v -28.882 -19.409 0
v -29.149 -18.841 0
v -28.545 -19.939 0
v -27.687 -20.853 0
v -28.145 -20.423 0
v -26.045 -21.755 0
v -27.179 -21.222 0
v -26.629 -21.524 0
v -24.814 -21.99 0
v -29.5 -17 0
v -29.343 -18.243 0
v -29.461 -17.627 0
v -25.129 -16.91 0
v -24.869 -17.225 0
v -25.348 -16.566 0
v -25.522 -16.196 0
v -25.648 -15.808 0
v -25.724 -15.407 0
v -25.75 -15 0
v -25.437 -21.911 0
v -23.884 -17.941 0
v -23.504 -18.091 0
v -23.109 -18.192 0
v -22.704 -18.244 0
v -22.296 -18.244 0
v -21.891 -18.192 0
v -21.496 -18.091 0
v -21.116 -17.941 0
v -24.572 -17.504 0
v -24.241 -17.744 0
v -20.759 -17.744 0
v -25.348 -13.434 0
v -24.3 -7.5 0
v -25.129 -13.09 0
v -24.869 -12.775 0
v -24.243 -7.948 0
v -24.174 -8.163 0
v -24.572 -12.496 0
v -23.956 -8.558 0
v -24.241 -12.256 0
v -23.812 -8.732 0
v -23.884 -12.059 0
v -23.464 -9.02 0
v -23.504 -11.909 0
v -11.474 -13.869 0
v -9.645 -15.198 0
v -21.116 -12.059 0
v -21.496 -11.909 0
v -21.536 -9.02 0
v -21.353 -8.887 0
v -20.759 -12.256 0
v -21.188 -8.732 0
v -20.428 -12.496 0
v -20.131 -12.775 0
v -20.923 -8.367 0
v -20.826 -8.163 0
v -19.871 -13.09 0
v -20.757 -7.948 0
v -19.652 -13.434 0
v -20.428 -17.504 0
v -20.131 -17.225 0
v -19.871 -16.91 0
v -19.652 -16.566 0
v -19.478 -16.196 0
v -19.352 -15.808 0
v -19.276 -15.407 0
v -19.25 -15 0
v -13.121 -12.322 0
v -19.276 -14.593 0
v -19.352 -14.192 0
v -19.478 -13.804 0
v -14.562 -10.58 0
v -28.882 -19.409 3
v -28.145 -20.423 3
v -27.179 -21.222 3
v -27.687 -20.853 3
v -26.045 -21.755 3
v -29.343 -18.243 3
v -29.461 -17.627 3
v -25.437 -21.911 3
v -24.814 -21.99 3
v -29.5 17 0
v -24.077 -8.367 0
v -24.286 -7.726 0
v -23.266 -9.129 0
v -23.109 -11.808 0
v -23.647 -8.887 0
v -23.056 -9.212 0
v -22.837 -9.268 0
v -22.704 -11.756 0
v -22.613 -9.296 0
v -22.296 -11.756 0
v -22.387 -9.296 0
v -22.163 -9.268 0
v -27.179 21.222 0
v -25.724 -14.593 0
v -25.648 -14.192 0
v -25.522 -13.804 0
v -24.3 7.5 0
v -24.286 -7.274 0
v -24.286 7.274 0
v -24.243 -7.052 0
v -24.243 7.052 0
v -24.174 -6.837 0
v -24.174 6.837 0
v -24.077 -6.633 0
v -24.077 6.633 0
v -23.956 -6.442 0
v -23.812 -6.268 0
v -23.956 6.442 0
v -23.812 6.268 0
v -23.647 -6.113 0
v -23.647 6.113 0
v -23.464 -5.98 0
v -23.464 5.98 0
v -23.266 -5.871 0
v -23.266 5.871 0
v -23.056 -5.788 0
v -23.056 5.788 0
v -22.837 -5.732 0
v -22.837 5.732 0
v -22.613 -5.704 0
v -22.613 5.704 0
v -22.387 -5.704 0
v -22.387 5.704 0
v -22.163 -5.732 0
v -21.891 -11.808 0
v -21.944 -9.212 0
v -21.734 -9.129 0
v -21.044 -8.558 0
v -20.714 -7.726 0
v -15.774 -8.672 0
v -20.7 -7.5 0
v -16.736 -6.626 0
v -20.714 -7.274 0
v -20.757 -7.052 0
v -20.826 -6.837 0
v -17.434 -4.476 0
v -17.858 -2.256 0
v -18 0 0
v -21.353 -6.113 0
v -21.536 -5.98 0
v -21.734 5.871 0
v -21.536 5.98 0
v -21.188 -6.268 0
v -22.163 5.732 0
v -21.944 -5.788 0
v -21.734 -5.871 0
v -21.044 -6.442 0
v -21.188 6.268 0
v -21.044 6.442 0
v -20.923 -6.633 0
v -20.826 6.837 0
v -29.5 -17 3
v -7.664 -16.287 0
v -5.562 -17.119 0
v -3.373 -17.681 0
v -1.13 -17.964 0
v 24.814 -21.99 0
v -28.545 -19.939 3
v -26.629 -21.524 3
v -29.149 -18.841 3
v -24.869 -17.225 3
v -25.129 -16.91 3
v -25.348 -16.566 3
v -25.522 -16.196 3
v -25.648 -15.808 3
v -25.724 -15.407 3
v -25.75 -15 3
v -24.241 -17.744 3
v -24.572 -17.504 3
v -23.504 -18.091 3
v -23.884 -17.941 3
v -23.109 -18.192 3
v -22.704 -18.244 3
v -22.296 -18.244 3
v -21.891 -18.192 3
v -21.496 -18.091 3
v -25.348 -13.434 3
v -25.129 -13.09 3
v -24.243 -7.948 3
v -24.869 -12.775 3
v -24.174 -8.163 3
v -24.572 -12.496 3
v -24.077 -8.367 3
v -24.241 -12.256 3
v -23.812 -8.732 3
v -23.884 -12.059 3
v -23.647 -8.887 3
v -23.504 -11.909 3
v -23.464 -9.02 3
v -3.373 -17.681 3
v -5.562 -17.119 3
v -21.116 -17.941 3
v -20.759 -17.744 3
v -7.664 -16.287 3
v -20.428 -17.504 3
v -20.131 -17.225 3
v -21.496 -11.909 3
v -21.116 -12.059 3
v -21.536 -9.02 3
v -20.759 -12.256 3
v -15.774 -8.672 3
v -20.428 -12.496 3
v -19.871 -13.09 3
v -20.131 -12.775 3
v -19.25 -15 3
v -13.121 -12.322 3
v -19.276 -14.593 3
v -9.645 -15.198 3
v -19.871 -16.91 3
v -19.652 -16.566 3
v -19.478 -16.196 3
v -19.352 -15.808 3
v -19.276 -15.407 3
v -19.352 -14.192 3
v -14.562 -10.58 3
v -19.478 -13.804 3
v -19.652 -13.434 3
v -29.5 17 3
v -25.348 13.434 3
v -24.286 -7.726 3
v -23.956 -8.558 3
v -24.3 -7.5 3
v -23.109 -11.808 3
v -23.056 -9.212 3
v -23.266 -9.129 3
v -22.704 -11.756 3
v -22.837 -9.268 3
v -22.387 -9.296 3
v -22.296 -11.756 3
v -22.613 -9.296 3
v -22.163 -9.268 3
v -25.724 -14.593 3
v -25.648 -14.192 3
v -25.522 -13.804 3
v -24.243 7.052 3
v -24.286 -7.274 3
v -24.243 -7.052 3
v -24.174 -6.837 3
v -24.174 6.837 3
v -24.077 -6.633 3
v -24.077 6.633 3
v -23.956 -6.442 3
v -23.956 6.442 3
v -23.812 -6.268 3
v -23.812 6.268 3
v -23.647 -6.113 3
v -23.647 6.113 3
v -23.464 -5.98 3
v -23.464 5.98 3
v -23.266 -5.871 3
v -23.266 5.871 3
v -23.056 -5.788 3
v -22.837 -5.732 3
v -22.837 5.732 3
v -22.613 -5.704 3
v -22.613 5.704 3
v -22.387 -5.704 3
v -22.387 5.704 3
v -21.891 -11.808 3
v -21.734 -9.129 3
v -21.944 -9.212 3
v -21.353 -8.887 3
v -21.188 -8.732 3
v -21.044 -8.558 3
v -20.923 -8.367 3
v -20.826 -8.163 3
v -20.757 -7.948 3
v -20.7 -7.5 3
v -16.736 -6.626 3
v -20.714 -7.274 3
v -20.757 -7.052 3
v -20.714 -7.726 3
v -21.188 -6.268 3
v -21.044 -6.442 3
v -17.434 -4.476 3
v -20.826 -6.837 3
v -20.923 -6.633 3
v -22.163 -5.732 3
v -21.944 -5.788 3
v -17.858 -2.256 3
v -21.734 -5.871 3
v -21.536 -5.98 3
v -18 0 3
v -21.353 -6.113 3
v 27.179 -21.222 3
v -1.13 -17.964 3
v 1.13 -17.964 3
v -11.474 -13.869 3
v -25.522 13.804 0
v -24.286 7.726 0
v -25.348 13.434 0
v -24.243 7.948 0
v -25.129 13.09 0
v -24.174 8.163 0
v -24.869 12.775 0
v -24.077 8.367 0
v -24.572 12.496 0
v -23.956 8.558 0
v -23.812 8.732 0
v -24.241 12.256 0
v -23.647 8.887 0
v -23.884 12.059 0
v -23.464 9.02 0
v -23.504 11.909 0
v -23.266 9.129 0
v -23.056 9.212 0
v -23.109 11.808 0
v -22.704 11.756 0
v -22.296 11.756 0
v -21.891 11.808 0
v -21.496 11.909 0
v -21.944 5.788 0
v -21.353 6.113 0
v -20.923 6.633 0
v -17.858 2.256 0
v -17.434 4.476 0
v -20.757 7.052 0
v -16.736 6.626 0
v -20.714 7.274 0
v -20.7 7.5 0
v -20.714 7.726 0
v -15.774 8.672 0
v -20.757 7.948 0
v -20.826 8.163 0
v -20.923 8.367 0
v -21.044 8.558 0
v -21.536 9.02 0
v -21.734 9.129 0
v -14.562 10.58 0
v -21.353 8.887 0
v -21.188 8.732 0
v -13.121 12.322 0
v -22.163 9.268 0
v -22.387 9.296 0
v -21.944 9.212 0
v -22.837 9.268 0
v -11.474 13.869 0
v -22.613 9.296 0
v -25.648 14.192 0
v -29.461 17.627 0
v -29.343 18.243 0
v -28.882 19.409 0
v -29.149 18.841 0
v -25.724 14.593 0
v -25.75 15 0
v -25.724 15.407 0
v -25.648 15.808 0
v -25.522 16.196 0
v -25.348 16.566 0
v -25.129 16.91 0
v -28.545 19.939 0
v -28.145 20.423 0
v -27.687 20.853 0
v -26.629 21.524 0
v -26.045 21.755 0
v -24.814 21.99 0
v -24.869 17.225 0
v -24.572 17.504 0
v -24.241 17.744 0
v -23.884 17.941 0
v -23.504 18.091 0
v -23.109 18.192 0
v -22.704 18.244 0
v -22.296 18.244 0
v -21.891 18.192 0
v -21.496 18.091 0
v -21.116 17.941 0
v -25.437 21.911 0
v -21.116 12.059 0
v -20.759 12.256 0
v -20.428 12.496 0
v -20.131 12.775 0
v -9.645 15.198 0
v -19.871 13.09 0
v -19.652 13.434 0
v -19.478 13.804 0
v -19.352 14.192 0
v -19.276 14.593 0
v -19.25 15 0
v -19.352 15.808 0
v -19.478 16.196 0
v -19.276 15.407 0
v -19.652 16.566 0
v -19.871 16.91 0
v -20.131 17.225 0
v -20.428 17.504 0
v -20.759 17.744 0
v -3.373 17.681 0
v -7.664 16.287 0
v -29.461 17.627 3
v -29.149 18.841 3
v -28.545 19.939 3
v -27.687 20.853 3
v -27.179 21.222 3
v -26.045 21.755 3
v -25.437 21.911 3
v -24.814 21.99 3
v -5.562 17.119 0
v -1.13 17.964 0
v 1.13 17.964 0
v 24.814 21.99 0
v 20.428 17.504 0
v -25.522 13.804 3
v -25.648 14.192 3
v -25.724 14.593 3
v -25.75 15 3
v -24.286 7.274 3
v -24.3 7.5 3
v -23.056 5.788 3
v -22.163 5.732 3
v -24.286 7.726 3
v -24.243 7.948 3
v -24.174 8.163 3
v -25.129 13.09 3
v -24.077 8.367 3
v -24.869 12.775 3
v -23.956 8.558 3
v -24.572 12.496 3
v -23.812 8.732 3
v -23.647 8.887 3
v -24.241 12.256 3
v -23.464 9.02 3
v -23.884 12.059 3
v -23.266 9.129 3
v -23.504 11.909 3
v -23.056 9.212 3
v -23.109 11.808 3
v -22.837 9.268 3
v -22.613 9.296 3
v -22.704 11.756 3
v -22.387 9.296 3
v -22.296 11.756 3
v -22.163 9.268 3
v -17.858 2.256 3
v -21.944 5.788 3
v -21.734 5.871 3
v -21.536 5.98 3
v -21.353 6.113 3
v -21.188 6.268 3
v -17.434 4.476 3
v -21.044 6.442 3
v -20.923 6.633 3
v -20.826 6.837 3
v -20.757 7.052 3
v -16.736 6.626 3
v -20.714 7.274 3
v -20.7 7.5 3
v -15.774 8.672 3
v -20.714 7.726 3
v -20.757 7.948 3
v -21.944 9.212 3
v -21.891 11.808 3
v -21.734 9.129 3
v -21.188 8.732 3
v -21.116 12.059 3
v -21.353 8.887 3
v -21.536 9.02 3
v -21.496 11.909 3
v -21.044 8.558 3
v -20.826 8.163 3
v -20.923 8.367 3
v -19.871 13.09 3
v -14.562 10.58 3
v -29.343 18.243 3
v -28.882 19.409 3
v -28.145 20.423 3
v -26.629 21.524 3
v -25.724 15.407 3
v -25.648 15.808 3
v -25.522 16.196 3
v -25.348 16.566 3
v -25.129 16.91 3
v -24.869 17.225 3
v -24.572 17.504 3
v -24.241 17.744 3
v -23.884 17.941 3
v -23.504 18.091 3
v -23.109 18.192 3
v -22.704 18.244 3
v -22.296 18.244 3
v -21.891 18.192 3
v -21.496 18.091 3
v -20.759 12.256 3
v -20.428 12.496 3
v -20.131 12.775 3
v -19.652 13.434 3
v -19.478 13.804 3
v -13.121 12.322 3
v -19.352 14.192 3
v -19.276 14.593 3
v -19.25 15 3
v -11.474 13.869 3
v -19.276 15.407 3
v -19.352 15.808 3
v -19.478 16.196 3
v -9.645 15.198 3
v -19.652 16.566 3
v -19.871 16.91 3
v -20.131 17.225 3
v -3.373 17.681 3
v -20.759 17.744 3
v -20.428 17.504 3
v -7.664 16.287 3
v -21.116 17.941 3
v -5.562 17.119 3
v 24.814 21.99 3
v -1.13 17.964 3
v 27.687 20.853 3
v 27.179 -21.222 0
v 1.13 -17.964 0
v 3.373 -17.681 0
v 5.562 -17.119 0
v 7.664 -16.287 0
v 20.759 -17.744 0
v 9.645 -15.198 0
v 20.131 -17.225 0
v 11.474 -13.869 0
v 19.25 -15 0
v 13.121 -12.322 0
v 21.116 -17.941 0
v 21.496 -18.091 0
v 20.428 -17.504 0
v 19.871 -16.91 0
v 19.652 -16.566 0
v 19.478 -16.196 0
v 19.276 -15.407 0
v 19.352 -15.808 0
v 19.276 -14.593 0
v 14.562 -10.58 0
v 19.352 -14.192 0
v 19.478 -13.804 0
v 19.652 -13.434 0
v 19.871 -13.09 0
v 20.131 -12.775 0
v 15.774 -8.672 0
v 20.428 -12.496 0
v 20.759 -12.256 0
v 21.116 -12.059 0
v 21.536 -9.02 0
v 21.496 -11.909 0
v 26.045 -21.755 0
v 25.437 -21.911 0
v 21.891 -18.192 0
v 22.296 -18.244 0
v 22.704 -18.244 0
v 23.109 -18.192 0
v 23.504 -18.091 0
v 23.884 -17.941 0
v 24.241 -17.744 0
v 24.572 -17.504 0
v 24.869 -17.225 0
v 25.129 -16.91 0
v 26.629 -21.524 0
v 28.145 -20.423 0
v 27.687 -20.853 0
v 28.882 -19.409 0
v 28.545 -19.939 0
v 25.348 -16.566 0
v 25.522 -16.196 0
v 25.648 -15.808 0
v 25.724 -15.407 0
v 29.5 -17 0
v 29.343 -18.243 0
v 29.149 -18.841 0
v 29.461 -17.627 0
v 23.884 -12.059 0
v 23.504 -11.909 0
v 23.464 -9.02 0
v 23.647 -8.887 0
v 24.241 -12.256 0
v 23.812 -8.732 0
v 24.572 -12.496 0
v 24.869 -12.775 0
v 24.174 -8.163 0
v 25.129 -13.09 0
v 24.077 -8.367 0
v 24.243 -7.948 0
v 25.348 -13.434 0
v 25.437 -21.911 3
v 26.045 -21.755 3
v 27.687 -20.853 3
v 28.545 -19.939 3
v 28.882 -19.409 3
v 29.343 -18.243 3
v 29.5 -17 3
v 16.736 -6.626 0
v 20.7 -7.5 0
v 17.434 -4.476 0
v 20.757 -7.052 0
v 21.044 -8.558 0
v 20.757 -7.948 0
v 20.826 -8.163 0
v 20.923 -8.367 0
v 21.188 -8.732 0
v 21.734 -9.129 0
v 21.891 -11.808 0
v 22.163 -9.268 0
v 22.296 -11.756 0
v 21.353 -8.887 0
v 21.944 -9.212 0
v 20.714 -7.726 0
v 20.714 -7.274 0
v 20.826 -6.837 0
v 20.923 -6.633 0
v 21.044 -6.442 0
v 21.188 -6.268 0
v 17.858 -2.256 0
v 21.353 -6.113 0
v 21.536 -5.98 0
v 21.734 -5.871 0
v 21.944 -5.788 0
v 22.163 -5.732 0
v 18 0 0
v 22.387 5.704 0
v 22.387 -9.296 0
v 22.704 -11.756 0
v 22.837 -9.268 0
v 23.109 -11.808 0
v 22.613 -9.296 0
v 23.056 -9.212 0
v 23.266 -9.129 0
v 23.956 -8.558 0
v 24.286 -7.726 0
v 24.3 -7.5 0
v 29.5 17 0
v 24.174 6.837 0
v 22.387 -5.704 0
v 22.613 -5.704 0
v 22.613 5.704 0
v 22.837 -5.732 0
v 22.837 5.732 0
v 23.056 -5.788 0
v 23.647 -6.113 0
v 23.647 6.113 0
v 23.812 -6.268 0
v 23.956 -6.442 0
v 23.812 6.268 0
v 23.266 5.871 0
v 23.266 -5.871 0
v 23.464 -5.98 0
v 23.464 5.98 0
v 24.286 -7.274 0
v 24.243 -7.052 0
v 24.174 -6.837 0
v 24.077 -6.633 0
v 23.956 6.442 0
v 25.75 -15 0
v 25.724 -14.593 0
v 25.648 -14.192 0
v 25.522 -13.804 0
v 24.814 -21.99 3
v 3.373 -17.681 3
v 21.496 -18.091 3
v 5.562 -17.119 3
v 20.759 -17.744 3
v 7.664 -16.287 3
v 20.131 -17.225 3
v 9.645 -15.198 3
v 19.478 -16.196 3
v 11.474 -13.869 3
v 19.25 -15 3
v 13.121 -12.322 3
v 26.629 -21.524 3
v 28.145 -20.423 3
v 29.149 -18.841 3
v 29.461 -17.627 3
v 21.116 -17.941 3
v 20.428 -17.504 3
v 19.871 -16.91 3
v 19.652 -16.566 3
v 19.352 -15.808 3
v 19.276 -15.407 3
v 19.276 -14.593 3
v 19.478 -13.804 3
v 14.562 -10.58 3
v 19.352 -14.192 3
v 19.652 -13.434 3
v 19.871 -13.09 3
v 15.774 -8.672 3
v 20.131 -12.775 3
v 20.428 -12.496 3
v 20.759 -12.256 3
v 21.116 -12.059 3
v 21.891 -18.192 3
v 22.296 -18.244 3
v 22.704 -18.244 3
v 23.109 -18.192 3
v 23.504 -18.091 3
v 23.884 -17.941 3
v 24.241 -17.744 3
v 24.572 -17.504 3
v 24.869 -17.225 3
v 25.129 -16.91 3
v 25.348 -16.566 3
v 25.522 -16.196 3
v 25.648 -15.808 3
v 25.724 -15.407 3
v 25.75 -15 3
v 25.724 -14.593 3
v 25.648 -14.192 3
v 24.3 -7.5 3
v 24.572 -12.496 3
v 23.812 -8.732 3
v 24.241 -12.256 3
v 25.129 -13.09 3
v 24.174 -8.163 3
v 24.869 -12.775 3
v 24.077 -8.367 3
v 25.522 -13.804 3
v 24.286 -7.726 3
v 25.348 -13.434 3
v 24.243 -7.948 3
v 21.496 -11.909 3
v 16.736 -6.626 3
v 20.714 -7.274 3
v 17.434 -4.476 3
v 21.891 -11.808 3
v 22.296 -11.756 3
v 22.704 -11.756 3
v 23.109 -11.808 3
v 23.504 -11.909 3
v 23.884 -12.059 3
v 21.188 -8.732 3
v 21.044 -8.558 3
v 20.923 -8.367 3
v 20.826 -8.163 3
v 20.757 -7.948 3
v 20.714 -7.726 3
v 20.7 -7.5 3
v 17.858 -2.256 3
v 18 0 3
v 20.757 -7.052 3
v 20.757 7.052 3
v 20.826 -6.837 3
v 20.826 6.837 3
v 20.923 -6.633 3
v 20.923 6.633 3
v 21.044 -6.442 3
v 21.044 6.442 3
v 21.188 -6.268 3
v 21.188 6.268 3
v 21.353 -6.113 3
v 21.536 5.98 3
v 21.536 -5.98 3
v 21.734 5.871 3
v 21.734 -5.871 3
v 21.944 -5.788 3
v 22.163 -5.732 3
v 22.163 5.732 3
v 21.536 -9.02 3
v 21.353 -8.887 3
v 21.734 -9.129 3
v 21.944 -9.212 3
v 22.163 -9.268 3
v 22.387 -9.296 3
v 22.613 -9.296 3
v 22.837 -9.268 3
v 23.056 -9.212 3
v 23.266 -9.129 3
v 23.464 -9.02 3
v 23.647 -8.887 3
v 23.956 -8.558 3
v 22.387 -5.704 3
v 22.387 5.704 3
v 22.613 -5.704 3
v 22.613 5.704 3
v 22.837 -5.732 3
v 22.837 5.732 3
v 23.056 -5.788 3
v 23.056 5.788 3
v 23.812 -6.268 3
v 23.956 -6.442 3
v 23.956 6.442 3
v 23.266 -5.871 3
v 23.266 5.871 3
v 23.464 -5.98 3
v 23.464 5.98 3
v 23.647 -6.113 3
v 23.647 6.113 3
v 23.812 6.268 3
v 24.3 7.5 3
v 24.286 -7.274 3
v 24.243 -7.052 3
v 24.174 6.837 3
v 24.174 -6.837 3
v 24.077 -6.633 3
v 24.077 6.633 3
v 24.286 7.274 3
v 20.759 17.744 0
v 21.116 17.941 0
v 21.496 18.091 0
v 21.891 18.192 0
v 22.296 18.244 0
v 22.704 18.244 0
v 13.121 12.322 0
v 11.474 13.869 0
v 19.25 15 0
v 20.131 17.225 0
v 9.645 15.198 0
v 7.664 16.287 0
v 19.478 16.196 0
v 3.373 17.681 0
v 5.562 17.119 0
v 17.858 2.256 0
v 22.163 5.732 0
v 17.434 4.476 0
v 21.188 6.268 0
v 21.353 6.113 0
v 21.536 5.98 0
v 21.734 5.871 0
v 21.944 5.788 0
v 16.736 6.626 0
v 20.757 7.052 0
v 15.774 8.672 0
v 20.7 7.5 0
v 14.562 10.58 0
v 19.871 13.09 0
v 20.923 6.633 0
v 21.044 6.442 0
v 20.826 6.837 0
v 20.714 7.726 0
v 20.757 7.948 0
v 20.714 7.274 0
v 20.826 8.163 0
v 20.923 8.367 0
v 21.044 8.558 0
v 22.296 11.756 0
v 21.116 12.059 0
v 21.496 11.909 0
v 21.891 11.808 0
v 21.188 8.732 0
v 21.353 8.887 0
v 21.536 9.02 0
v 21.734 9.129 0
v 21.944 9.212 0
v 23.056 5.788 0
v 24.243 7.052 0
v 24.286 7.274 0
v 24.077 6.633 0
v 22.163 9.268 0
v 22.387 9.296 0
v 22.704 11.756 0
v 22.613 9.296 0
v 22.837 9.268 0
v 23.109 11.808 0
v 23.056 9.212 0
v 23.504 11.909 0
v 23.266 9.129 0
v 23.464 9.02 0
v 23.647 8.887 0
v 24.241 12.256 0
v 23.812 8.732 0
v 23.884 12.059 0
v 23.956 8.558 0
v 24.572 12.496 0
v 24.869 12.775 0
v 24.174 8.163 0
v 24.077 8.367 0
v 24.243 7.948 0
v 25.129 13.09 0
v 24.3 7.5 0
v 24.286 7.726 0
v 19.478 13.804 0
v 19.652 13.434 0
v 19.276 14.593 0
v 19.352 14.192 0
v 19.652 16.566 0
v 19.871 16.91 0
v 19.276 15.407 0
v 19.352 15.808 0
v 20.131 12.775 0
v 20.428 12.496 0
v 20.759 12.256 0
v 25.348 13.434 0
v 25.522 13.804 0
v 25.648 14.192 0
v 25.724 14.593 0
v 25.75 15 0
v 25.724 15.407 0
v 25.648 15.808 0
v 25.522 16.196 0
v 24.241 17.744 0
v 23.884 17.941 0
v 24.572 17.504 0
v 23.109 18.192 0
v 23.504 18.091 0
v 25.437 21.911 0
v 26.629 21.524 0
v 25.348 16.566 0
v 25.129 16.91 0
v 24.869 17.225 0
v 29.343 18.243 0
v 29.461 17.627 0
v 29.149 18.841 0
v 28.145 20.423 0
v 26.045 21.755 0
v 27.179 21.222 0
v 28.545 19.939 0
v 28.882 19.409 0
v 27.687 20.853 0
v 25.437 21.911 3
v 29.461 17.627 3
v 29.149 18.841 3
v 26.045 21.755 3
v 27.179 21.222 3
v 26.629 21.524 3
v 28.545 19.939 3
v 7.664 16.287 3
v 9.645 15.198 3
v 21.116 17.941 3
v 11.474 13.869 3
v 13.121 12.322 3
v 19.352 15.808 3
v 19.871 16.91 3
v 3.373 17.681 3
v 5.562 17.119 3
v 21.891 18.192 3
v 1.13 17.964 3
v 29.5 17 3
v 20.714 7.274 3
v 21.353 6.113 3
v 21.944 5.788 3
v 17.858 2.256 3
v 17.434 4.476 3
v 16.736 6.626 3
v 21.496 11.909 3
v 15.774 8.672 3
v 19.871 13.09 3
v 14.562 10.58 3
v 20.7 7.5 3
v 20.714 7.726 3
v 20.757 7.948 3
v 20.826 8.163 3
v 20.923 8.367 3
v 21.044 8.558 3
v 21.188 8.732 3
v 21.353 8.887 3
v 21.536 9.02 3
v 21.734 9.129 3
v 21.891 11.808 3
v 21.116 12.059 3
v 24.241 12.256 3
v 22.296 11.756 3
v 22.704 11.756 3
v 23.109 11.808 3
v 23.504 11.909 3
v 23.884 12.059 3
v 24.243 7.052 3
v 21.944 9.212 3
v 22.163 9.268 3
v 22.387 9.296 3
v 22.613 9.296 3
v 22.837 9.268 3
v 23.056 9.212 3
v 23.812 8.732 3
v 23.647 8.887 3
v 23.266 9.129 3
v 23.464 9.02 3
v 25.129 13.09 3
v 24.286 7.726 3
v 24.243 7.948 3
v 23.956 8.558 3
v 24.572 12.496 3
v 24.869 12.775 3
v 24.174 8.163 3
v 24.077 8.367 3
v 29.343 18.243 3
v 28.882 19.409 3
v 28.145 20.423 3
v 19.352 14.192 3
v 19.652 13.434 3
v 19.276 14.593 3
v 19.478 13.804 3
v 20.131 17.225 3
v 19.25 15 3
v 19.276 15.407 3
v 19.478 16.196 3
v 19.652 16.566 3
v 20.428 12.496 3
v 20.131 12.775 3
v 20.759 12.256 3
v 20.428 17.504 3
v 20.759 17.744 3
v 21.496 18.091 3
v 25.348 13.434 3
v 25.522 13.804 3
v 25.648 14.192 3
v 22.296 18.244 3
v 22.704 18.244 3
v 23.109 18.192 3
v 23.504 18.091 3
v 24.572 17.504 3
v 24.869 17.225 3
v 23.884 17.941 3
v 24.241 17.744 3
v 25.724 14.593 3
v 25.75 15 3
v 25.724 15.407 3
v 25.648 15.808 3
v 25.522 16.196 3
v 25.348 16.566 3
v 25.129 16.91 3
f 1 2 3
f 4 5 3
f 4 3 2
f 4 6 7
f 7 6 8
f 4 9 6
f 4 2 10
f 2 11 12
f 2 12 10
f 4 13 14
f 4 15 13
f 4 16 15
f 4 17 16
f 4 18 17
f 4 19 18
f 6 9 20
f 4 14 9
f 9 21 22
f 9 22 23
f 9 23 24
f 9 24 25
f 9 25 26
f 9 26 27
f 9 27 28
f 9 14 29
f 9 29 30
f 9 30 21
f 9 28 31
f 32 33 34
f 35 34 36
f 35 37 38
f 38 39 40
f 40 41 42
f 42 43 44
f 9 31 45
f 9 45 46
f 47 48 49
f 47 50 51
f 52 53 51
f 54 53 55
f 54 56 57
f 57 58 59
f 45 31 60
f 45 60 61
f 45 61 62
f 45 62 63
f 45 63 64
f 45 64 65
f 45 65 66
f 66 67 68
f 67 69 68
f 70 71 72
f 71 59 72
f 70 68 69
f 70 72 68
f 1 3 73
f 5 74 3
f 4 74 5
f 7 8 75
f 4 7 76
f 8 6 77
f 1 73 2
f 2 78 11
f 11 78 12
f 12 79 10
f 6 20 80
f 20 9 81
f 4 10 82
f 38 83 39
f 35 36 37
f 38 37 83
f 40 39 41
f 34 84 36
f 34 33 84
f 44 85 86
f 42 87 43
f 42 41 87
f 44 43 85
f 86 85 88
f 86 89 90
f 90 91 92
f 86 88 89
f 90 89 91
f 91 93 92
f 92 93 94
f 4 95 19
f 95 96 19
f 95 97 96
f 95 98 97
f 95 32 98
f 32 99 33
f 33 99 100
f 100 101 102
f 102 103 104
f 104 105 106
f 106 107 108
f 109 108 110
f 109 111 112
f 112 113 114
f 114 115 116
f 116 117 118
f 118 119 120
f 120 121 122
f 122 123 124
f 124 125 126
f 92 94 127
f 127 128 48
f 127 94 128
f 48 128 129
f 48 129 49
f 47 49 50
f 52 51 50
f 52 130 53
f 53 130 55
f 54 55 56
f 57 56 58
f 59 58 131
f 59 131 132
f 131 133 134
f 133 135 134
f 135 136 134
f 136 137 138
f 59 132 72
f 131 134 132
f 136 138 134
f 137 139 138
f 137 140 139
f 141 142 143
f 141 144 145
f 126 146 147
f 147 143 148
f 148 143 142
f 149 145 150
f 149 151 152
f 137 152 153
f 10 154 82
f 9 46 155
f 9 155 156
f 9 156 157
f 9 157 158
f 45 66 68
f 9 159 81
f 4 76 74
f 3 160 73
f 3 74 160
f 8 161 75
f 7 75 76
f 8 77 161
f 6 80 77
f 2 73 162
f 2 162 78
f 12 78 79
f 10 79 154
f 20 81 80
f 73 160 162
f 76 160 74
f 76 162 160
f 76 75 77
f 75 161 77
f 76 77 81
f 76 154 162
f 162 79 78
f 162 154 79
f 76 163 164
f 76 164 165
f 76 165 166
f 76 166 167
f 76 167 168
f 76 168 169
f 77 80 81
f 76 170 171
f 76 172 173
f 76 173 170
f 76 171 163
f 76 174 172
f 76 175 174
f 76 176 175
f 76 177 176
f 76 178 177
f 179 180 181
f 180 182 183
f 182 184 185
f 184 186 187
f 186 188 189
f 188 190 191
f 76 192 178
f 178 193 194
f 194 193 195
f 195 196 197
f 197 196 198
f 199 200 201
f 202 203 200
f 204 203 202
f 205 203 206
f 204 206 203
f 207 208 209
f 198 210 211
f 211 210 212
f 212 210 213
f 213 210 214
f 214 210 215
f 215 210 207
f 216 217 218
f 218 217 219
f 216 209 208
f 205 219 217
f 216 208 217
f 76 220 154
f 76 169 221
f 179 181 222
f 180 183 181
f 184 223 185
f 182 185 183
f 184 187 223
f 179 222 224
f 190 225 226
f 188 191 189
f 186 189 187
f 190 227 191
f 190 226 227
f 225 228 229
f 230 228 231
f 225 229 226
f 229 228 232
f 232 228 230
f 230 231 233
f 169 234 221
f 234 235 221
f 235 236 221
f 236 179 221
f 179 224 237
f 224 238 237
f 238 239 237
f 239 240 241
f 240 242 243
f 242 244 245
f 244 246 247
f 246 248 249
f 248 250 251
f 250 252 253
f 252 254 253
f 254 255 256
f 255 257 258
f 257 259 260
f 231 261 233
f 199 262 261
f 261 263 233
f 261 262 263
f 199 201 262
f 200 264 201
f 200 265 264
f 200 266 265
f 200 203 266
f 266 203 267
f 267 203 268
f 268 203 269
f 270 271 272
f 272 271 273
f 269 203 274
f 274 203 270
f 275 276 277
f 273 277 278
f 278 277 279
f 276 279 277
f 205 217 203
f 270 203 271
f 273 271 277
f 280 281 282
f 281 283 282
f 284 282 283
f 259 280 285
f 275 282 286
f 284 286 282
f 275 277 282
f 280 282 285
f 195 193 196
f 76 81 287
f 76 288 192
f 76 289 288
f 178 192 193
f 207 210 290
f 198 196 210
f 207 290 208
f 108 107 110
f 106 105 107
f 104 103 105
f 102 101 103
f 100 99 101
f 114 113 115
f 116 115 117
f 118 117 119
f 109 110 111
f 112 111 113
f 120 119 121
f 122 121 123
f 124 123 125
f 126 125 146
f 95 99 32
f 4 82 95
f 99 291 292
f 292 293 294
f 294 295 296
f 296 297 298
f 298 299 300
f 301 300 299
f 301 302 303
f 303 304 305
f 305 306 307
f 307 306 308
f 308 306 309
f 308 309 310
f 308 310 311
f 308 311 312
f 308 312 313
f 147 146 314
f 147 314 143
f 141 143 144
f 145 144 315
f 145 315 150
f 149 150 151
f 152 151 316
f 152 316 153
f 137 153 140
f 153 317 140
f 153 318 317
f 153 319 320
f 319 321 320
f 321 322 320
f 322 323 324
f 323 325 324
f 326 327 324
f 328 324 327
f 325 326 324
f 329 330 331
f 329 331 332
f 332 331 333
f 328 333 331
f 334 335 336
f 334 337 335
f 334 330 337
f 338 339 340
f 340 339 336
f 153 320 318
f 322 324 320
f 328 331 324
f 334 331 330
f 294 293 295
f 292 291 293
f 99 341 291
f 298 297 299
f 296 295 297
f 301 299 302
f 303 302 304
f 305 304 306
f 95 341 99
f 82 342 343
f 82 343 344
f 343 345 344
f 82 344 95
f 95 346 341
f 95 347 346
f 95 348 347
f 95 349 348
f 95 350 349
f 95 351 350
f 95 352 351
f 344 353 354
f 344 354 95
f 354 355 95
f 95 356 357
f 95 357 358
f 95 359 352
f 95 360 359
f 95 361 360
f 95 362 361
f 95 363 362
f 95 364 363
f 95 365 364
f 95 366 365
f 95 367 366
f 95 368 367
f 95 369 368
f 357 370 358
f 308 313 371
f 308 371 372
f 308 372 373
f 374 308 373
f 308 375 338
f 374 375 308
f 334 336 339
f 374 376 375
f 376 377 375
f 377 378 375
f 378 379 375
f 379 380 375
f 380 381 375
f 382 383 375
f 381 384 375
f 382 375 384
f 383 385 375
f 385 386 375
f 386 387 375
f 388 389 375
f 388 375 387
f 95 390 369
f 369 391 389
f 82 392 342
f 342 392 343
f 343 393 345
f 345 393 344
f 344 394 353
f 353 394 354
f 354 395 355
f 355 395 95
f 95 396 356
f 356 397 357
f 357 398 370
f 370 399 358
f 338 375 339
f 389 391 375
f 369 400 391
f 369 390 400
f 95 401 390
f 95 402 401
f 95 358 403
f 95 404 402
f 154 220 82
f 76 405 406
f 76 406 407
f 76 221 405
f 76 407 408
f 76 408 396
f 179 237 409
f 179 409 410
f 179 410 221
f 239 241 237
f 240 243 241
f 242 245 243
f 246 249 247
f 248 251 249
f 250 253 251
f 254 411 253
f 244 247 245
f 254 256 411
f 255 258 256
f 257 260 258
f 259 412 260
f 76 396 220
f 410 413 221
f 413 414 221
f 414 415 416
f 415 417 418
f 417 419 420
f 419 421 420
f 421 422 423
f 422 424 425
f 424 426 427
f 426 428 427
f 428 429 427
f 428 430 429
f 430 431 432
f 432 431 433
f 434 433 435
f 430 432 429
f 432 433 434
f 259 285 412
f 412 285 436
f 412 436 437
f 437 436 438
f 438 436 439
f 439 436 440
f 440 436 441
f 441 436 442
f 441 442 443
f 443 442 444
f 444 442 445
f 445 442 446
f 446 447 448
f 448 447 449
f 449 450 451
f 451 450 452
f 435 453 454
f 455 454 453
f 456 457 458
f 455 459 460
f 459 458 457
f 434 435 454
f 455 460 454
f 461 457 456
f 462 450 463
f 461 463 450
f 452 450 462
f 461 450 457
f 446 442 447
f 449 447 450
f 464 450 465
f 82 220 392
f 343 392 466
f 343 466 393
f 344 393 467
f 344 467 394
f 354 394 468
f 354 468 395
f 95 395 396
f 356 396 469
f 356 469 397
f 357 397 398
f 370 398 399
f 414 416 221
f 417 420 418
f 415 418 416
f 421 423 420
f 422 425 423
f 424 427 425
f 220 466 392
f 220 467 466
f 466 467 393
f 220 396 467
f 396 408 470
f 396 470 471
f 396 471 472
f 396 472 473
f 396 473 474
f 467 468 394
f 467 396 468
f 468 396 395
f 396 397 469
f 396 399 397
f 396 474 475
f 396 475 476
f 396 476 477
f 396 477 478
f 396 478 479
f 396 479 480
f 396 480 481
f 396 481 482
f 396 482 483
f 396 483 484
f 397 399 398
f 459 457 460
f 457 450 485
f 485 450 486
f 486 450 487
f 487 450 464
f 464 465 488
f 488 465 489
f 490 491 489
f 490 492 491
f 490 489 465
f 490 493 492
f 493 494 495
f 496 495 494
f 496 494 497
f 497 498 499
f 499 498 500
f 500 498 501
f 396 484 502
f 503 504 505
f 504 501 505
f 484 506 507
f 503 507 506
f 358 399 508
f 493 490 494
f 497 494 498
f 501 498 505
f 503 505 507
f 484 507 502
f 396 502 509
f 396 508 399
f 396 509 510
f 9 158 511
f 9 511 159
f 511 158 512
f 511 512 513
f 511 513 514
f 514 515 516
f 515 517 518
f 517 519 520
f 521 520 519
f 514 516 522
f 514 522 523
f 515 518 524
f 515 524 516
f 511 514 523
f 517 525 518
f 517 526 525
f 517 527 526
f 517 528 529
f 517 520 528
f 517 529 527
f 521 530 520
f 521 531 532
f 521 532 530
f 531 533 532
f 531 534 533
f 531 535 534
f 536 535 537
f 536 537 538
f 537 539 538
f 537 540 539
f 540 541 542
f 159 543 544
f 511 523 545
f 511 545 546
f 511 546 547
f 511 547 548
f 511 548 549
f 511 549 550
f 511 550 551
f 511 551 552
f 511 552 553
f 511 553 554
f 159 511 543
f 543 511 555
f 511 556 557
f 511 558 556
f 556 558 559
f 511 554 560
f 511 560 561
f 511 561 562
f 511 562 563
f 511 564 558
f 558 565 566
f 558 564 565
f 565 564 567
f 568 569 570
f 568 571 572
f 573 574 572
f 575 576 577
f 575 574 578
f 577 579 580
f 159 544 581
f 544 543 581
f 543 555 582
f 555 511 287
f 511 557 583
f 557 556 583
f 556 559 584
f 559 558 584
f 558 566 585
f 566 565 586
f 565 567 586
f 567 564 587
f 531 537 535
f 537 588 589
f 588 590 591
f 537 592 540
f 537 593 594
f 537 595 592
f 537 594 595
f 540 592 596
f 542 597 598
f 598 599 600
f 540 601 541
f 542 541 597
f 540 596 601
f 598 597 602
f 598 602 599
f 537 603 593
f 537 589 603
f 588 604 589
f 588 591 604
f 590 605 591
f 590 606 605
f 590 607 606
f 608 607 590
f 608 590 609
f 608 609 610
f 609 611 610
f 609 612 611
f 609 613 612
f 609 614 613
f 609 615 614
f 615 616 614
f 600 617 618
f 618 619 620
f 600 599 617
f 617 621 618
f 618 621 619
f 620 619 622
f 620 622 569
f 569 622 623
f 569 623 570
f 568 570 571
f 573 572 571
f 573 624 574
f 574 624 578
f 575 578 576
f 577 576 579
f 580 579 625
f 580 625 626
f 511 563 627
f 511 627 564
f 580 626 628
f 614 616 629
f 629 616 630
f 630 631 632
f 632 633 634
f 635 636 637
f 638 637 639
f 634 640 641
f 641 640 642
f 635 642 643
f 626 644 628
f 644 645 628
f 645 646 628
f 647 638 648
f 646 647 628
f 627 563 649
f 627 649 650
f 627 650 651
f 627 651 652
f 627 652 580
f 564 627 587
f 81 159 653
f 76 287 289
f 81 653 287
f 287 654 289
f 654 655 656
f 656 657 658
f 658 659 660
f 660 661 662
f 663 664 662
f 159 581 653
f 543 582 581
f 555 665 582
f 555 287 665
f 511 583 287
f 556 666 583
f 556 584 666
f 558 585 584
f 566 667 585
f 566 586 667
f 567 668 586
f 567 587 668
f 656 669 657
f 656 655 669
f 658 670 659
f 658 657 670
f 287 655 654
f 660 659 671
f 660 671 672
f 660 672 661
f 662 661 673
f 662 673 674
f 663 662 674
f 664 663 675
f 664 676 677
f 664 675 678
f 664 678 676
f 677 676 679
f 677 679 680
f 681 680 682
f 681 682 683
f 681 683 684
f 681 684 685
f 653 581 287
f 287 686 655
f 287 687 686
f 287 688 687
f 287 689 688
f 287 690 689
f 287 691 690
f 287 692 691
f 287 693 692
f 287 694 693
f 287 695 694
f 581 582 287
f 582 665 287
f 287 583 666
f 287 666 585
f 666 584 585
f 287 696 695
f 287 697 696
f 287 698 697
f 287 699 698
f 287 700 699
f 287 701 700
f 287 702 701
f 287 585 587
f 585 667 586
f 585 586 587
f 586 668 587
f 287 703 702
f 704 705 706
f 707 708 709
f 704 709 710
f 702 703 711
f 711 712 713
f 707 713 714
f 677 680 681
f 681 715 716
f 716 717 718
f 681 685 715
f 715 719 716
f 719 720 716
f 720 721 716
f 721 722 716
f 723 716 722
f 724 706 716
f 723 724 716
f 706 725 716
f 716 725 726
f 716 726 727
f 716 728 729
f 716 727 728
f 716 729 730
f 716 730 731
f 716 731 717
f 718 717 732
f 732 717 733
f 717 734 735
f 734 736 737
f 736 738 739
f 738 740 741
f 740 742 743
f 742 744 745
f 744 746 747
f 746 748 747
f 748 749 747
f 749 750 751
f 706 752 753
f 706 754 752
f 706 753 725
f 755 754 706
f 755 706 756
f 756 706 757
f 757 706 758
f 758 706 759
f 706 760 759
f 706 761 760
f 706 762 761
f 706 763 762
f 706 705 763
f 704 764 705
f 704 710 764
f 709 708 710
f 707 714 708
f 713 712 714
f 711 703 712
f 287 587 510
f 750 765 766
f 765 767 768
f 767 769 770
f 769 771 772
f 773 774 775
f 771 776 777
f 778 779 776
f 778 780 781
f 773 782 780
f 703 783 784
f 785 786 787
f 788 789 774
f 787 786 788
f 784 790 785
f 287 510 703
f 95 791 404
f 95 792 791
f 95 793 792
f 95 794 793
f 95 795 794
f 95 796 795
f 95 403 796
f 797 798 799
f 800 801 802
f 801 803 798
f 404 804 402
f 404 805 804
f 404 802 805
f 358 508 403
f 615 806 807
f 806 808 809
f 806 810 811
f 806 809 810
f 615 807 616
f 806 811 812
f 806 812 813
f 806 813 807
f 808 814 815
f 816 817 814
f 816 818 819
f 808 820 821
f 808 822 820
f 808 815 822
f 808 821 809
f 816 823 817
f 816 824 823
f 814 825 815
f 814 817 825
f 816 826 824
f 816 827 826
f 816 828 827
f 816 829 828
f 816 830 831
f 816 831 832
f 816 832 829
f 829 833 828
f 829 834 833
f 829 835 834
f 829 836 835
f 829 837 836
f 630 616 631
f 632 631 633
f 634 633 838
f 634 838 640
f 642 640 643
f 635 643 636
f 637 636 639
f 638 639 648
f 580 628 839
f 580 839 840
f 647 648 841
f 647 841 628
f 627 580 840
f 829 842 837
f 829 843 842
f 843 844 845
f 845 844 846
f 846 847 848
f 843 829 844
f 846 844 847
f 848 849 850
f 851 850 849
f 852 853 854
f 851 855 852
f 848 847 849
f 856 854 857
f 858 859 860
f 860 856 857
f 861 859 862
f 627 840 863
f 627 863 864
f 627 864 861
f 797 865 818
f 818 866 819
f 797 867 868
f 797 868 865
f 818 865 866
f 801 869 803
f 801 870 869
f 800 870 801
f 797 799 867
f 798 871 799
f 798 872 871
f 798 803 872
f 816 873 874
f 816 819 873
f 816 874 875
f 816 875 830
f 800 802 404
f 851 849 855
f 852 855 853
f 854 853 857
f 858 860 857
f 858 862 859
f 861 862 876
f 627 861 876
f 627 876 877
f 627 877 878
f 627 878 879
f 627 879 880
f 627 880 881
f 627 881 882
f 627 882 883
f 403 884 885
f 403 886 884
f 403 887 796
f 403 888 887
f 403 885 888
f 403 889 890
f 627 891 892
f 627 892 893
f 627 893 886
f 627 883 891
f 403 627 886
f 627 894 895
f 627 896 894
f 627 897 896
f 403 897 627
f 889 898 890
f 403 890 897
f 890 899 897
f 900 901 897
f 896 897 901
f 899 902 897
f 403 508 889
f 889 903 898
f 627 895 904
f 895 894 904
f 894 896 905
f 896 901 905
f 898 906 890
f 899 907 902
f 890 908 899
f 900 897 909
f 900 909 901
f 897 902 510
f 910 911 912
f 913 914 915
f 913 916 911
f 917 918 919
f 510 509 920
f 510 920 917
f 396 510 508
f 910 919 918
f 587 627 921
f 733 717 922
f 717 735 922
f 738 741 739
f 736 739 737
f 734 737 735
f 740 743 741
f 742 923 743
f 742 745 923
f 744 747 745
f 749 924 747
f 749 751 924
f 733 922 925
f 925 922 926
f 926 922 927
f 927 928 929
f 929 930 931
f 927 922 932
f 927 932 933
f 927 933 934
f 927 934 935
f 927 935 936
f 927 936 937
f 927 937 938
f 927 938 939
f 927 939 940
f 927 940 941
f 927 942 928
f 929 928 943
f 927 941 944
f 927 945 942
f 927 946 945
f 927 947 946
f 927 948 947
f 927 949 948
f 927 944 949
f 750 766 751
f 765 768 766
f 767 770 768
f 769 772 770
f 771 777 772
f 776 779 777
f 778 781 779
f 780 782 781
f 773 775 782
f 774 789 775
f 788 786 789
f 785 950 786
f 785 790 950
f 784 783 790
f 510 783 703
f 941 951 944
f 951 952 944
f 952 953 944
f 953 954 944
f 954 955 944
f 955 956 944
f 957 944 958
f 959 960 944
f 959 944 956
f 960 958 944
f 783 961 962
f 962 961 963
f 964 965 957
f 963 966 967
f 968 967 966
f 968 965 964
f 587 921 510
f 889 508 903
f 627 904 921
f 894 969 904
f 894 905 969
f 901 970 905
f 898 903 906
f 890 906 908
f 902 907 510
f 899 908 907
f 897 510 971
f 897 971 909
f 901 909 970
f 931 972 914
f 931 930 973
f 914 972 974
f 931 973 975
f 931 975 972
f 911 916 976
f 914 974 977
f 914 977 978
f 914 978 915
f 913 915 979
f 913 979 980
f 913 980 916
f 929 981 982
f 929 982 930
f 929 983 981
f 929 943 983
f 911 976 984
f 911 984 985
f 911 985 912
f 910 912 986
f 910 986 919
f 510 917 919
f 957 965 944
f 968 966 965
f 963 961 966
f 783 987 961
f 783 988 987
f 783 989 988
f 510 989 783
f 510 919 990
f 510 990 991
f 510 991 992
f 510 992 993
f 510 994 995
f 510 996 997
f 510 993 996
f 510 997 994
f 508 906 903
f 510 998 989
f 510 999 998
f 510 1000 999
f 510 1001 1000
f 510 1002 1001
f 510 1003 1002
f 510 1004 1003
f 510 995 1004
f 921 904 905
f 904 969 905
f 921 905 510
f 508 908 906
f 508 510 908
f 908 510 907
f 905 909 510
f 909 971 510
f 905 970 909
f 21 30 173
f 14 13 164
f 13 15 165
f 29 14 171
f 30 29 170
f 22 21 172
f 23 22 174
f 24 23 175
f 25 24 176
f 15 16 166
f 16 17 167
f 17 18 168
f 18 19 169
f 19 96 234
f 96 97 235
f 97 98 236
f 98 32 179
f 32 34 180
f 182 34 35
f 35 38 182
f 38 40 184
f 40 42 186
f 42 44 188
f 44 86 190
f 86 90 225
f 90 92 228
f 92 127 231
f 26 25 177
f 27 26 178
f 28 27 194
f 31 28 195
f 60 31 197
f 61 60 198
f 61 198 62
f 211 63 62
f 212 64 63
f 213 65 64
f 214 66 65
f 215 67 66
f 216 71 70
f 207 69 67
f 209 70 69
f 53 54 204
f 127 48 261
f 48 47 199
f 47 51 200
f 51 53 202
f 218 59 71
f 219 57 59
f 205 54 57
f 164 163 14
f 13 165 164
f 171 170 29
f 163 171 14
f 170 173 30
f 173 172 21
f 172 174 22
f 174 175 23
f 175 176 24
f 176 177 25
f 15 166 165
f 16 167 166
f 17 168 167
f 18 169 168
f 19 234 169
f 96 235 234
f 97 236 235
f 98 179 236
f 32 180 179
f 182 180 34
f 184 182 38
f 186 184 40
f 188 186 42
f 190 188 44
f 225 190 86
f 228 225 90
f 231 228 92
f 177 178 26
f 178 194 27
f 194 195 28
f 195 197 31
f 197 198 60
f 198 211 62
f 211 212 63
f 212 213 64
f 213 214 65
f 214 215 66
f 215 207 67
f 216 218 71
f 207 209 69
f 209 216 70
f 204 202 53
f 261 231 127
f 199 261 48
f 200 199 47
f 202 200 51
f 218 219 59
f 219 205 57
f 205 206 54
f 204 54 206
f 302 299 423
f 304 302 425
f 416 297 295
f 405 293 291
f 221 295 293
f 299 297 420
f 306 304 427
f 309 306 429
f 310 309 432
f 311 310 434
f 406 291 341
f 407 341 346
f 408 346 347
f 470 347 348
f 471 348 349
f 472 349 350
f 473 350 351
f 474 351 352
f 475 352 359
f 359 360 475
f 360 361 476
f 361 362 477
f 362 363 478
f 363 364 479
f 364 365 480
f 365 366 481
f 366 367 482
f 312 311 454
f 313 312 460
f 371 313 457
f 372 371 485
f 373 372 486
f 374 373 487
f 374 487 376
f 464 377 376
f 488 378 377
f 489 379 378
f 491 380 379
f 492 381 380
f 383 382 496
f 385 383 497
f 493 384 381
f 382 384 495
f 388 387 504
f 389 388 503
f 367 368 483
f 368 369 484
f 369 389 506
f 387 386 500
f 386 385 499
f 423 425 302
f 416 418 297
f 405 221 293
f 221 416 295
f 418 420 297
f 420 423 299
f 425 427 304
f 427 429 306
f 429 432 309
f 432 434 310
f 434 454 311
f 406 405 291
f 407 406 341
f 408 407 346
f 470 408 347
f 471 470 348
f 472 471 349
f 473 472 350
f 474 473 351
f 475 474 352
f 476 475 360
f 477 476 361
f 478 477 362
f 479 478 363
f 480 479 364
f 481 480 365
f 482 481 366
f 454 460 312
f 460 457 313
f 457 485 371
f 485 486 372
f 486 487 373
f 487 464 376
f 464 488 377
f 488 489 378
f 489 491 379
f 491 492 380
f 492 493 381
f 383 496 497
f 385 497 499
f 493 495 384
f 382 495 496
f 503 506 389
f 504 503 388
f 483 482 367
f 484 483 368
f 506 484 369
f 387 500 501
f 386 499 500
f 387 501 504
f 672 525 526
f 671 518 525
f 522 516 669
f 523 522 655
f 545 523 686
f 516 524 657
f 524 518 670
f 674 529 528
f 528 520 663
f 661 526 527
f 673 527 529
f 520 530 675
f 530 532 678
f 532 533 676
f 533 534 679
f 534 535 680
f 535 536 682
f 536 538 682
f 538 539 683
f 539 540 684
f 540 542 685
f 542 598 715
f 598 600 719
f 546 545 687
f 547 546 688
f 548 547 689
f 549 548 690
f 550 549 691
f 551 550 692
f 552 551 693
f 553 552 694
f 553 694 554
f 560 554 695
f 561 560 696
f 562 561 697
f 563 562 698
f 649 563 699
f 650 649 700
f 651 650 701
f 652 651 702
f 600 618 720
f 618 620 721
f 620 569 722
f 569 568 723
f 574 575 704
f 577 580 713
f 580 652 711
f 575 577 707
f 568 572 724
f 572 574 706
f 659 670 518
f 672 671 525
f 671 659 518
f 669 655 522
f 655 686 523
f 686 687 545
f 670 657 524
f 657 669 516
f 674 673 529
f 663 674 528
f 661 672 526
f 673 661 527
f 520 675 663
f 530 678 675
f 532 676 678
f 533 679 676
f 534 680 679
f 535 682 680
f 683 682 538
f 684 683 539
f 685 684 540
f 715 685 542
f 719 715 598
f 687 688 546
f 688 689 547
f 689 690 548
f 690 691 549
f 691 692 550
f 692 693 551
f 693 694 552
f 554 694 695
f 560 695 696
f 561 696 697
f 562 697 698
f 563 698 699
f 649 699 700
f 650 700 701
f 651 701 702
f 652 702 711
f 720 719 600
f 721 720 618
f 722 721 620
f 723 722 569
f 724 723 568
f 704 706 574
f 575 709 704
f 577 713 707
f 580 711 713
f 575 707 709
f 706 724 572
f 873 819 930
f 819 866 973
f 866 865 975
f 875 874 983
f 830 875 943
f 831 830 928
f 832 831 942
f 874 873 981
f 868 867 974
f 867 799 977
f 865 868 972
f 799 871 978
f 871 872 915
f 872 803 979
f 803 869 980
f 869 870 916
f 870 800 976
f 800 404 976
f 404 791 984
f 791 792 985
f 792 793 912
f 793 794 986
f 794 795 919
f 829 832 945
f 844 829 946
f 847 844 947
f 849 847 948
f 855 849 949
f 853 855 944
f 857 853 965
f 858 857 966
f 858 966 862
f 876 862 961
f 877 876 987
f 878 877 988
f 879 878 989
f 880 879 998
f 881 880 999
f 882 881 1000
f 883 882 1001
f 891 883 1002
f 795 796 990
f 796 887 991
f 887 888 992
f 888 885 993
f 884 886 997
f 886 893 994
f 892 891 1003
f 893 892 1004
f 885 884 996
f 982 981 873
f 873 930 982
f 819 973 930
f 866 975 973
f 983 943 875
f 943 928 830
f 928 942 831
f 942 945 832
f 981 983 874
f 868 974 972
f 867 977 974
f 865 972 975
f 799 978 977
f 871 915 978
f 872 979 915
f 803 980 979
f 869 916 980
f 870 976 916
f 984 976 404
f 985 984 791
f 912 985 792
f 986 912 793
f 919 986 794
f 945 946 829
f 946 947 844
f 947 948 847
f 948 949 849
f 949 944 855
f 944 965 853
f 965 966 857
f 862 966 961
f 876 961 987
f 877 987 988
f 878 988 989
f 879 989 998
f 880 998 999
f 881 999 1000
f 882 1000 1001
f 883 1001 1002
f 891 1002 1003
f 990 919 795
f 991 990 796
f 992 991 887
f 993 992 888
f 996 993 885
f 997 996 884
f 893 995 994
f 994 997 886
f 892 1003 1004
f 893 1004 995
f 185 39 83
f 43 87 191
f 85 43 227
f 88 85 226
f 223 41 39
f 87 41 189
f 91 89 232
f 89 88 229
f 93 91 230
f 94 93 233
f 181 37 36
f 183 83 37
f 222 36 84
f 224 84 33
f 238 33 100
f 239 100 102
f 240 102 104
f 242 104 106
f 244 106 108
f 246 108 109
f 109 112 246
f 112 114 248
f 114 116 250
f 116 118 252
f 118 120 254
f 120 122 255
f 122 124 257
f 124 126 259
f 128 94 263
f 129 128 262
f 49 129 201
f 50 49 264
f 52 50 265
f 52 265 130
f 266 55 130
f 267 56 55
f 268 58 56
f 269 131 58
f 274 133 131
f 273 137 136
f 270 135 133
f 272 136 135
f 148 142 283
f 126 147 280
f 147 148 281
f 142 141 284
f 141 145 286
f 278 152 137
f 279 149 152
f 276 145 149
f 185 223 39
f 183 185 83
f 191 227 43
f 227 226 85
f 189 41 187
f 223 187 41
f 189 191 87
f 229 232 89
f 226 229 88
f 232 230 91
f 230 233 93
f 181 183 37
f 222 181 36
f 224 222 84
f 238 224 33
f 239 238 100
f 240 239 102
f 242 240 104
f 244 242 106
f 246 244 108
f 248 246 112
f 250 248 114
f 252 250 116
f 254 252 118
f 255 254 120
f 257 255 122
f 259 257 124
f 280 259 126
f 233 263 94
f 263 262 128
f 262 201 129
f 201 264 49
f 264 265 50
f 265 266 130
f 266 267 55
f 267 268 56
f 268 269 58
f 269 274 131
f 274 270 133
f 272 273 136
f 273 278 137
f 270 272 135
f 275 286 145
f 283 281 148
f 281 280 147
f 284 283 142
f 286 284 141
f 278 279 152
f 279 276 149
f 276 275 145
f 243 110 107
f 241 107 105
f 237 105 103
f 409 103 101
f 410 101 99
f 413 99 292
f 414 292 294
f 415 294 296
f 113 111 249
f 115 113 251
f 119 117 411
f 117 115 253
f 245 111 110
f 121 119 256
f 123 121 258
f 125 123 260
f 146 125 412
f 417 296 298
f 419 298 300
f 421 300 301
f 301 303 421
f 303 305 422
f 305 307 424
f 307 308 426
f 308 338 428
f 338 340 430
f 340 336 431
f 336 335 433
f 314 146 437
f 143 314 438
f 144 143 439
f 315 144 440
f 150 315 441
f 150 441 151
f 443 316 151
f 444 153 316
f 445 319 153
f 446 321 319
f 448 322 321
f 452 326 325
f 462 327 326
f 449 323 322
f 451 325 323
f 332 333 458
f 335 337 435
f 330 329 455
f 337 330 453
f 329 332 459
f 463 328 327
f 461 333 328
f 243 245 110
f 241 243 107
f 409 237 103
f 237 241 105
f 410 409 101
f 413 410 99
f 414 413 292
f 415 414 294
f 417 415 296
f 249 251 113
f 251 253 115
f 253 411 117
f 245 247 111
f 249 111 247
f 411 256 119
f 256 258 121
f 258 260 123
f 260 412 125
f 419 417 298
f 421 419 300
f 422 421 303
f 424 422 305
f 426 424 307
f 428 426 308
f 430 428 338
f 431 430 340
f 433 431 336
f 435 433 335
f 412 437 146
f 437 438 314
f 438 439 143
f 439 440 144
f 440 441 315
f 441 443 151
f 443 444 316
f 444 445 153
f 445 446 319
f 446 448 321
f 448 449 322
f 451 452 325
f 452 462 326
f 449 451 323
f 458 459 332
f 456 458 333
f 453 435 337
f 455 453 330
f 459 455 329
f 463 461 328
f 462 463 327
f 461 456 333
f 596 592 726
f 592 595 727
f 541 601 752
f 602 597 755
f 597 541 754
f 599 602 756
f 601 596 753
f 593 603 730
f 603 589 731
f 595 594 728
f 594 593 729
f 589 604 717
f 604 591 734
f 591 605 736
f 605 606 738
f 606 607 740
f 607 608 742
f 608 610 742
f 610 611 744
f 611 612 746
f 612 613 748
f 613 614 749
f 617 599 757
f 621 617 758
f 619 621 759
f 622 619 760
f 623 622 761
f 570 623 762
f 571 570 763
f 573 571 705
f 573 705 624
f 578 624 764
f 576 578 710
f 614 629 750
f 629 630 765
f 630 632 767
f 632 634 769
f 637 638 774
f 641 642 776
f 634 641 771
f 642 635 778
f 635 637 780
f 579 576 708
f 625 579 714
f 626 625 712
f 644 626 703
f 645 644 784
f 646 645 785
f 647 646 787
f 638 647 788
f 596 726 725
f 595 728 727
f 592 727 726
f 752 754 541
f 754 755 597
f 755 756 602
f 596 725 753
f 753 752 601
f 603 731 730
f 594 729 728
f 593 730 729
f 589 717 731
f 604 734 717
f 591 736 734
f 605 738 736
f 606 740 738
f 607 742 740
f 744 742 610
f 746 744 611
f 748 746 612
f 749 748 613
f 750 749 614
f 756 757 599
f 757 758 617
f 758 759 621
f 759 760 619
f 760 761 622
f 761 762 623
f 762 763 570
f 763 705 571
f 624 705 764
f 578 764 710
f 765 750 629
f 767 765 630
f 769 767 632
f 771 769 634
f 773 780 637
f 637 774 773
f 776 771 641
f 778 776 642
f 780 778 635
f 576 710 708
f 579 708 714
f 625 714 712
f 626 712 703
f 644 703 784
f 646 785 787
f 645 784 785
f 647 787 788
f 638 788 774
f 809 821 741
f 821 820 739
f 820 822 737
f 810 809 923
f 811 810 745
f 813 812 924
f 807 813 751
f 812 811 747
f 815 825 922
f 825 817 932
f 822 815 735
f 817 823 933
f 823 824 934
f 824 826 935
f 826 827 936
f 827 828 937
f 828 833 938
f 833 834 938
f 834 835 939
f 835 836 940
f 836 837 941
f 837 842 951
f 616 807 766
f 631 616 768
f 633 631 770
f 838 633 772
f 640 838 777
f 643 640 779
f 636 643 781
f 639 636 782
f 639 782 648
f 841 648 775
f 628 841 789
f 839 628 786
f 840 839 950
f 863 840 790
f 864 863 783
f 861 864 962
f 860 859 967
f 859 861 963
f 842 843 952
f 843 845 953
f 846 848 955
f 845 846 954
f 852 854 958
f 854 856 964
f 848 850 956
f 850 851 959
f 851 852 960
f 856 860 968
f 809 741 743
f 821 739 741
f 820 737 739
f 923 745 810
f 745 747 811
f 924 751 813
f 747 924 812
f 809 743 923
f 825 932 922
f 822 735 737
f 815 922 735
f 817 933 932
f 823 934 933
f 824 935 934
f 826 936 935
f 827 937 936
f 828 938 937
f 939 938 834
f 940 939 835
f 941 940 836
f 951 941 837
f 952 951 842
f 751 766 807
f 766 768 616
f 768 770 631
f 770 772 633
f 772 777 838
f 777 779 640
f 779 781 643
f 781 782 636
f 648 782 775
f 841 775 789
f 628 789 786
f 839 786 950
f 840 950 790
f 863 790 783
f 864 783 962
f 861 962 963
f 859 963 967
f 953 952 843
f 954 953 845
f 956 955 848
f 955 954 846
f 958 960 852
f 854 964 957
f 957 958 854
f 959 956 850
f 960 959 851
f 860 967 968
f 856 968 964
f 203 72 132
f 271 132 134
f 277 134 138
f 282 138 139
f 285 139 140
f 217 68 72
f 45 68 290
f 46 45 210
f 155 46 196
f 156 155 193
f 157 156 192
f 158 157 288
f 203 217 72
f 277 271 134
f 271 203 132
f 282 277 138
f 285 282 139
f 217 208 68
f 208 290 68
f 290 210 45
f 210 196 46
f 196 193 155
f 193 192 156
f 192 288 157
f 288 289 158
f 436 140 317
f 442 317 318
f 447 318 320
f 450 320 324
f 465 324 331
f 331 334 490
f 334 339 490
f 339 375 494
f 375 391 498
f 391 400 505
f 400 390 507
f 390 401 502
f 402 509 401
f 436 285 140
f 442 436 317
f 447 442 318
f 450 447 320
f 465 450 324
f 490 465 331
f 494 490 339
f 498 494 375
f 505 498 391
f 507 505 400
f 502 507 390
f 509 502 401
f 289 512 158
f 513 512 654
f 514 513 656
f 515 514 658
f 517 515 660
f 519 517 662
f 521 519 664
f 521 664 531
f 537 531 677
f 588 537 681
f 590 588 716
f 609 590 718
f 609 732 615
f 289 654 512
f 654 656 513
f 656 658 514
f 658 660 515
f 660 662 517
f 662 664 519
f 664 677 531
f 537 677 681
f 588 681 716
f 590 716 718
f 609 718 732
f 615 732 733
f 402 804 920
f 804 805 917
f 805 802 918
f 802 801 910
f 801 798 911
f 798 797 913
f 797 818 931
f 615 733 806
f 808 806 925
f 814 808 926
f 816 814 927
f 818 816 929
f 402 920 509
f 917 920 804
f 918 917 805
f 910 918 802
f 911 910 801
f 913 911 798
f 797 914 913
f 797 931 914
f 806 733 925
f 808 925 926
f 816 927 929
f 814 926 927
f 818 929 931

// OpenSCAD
$fn = 50;

difference() {
	union() {
		hull() {
			translate(v = [-24.5, 17.0, 0]) {
				cylinder(h = 3, r = 5);
			}
			translate(v = [24.5, 17.0, 0]) {
				cylinder(h = 3, r = 5);
			}
			translate(v = [-24.5, -17.0, 0]) {
				cylinder(h = 3, r = 5);
			}
			translate(v = [24.5, -17.0, 0]) {
				cylinder(h = 3, r = 5);
			}
		}
	}
	union() {
		translate(v = [-22.5, -15.0, 0]) {
			cylinder(h = 3, r = 3.25);
		}
		translate(v = [-22.5, 15.0, 0]) {
			cylinder(h = 3, r = 3.25);
		}
		translate(v = [22.5, -15.0, 0]) {
			cylinder(h = 3, r = 3.25);
		}
		translate(v = [22.5, 15.0, 0]) {
			cylinder(h = 3, r = 3.25);
		}
		translate(v = [-22.5, -7.5, 0]) {
			cylinder(h = 3, r = 1.8);
		}
		translate(v = [-22.5, 7.5, 0]) {
			cylinder(h = 3, r = 1.8);
		}
		translate(v = [22.5, -7.5, 0]) {
			cylinder(h = 3, r = 1.8);
		}
		translate(v = [22.5, 7.5, 0]) {
			cylinder(h = 3, r = 1.8);
		}
		cylinder(h = 3, r = 18.0);
	}
}
